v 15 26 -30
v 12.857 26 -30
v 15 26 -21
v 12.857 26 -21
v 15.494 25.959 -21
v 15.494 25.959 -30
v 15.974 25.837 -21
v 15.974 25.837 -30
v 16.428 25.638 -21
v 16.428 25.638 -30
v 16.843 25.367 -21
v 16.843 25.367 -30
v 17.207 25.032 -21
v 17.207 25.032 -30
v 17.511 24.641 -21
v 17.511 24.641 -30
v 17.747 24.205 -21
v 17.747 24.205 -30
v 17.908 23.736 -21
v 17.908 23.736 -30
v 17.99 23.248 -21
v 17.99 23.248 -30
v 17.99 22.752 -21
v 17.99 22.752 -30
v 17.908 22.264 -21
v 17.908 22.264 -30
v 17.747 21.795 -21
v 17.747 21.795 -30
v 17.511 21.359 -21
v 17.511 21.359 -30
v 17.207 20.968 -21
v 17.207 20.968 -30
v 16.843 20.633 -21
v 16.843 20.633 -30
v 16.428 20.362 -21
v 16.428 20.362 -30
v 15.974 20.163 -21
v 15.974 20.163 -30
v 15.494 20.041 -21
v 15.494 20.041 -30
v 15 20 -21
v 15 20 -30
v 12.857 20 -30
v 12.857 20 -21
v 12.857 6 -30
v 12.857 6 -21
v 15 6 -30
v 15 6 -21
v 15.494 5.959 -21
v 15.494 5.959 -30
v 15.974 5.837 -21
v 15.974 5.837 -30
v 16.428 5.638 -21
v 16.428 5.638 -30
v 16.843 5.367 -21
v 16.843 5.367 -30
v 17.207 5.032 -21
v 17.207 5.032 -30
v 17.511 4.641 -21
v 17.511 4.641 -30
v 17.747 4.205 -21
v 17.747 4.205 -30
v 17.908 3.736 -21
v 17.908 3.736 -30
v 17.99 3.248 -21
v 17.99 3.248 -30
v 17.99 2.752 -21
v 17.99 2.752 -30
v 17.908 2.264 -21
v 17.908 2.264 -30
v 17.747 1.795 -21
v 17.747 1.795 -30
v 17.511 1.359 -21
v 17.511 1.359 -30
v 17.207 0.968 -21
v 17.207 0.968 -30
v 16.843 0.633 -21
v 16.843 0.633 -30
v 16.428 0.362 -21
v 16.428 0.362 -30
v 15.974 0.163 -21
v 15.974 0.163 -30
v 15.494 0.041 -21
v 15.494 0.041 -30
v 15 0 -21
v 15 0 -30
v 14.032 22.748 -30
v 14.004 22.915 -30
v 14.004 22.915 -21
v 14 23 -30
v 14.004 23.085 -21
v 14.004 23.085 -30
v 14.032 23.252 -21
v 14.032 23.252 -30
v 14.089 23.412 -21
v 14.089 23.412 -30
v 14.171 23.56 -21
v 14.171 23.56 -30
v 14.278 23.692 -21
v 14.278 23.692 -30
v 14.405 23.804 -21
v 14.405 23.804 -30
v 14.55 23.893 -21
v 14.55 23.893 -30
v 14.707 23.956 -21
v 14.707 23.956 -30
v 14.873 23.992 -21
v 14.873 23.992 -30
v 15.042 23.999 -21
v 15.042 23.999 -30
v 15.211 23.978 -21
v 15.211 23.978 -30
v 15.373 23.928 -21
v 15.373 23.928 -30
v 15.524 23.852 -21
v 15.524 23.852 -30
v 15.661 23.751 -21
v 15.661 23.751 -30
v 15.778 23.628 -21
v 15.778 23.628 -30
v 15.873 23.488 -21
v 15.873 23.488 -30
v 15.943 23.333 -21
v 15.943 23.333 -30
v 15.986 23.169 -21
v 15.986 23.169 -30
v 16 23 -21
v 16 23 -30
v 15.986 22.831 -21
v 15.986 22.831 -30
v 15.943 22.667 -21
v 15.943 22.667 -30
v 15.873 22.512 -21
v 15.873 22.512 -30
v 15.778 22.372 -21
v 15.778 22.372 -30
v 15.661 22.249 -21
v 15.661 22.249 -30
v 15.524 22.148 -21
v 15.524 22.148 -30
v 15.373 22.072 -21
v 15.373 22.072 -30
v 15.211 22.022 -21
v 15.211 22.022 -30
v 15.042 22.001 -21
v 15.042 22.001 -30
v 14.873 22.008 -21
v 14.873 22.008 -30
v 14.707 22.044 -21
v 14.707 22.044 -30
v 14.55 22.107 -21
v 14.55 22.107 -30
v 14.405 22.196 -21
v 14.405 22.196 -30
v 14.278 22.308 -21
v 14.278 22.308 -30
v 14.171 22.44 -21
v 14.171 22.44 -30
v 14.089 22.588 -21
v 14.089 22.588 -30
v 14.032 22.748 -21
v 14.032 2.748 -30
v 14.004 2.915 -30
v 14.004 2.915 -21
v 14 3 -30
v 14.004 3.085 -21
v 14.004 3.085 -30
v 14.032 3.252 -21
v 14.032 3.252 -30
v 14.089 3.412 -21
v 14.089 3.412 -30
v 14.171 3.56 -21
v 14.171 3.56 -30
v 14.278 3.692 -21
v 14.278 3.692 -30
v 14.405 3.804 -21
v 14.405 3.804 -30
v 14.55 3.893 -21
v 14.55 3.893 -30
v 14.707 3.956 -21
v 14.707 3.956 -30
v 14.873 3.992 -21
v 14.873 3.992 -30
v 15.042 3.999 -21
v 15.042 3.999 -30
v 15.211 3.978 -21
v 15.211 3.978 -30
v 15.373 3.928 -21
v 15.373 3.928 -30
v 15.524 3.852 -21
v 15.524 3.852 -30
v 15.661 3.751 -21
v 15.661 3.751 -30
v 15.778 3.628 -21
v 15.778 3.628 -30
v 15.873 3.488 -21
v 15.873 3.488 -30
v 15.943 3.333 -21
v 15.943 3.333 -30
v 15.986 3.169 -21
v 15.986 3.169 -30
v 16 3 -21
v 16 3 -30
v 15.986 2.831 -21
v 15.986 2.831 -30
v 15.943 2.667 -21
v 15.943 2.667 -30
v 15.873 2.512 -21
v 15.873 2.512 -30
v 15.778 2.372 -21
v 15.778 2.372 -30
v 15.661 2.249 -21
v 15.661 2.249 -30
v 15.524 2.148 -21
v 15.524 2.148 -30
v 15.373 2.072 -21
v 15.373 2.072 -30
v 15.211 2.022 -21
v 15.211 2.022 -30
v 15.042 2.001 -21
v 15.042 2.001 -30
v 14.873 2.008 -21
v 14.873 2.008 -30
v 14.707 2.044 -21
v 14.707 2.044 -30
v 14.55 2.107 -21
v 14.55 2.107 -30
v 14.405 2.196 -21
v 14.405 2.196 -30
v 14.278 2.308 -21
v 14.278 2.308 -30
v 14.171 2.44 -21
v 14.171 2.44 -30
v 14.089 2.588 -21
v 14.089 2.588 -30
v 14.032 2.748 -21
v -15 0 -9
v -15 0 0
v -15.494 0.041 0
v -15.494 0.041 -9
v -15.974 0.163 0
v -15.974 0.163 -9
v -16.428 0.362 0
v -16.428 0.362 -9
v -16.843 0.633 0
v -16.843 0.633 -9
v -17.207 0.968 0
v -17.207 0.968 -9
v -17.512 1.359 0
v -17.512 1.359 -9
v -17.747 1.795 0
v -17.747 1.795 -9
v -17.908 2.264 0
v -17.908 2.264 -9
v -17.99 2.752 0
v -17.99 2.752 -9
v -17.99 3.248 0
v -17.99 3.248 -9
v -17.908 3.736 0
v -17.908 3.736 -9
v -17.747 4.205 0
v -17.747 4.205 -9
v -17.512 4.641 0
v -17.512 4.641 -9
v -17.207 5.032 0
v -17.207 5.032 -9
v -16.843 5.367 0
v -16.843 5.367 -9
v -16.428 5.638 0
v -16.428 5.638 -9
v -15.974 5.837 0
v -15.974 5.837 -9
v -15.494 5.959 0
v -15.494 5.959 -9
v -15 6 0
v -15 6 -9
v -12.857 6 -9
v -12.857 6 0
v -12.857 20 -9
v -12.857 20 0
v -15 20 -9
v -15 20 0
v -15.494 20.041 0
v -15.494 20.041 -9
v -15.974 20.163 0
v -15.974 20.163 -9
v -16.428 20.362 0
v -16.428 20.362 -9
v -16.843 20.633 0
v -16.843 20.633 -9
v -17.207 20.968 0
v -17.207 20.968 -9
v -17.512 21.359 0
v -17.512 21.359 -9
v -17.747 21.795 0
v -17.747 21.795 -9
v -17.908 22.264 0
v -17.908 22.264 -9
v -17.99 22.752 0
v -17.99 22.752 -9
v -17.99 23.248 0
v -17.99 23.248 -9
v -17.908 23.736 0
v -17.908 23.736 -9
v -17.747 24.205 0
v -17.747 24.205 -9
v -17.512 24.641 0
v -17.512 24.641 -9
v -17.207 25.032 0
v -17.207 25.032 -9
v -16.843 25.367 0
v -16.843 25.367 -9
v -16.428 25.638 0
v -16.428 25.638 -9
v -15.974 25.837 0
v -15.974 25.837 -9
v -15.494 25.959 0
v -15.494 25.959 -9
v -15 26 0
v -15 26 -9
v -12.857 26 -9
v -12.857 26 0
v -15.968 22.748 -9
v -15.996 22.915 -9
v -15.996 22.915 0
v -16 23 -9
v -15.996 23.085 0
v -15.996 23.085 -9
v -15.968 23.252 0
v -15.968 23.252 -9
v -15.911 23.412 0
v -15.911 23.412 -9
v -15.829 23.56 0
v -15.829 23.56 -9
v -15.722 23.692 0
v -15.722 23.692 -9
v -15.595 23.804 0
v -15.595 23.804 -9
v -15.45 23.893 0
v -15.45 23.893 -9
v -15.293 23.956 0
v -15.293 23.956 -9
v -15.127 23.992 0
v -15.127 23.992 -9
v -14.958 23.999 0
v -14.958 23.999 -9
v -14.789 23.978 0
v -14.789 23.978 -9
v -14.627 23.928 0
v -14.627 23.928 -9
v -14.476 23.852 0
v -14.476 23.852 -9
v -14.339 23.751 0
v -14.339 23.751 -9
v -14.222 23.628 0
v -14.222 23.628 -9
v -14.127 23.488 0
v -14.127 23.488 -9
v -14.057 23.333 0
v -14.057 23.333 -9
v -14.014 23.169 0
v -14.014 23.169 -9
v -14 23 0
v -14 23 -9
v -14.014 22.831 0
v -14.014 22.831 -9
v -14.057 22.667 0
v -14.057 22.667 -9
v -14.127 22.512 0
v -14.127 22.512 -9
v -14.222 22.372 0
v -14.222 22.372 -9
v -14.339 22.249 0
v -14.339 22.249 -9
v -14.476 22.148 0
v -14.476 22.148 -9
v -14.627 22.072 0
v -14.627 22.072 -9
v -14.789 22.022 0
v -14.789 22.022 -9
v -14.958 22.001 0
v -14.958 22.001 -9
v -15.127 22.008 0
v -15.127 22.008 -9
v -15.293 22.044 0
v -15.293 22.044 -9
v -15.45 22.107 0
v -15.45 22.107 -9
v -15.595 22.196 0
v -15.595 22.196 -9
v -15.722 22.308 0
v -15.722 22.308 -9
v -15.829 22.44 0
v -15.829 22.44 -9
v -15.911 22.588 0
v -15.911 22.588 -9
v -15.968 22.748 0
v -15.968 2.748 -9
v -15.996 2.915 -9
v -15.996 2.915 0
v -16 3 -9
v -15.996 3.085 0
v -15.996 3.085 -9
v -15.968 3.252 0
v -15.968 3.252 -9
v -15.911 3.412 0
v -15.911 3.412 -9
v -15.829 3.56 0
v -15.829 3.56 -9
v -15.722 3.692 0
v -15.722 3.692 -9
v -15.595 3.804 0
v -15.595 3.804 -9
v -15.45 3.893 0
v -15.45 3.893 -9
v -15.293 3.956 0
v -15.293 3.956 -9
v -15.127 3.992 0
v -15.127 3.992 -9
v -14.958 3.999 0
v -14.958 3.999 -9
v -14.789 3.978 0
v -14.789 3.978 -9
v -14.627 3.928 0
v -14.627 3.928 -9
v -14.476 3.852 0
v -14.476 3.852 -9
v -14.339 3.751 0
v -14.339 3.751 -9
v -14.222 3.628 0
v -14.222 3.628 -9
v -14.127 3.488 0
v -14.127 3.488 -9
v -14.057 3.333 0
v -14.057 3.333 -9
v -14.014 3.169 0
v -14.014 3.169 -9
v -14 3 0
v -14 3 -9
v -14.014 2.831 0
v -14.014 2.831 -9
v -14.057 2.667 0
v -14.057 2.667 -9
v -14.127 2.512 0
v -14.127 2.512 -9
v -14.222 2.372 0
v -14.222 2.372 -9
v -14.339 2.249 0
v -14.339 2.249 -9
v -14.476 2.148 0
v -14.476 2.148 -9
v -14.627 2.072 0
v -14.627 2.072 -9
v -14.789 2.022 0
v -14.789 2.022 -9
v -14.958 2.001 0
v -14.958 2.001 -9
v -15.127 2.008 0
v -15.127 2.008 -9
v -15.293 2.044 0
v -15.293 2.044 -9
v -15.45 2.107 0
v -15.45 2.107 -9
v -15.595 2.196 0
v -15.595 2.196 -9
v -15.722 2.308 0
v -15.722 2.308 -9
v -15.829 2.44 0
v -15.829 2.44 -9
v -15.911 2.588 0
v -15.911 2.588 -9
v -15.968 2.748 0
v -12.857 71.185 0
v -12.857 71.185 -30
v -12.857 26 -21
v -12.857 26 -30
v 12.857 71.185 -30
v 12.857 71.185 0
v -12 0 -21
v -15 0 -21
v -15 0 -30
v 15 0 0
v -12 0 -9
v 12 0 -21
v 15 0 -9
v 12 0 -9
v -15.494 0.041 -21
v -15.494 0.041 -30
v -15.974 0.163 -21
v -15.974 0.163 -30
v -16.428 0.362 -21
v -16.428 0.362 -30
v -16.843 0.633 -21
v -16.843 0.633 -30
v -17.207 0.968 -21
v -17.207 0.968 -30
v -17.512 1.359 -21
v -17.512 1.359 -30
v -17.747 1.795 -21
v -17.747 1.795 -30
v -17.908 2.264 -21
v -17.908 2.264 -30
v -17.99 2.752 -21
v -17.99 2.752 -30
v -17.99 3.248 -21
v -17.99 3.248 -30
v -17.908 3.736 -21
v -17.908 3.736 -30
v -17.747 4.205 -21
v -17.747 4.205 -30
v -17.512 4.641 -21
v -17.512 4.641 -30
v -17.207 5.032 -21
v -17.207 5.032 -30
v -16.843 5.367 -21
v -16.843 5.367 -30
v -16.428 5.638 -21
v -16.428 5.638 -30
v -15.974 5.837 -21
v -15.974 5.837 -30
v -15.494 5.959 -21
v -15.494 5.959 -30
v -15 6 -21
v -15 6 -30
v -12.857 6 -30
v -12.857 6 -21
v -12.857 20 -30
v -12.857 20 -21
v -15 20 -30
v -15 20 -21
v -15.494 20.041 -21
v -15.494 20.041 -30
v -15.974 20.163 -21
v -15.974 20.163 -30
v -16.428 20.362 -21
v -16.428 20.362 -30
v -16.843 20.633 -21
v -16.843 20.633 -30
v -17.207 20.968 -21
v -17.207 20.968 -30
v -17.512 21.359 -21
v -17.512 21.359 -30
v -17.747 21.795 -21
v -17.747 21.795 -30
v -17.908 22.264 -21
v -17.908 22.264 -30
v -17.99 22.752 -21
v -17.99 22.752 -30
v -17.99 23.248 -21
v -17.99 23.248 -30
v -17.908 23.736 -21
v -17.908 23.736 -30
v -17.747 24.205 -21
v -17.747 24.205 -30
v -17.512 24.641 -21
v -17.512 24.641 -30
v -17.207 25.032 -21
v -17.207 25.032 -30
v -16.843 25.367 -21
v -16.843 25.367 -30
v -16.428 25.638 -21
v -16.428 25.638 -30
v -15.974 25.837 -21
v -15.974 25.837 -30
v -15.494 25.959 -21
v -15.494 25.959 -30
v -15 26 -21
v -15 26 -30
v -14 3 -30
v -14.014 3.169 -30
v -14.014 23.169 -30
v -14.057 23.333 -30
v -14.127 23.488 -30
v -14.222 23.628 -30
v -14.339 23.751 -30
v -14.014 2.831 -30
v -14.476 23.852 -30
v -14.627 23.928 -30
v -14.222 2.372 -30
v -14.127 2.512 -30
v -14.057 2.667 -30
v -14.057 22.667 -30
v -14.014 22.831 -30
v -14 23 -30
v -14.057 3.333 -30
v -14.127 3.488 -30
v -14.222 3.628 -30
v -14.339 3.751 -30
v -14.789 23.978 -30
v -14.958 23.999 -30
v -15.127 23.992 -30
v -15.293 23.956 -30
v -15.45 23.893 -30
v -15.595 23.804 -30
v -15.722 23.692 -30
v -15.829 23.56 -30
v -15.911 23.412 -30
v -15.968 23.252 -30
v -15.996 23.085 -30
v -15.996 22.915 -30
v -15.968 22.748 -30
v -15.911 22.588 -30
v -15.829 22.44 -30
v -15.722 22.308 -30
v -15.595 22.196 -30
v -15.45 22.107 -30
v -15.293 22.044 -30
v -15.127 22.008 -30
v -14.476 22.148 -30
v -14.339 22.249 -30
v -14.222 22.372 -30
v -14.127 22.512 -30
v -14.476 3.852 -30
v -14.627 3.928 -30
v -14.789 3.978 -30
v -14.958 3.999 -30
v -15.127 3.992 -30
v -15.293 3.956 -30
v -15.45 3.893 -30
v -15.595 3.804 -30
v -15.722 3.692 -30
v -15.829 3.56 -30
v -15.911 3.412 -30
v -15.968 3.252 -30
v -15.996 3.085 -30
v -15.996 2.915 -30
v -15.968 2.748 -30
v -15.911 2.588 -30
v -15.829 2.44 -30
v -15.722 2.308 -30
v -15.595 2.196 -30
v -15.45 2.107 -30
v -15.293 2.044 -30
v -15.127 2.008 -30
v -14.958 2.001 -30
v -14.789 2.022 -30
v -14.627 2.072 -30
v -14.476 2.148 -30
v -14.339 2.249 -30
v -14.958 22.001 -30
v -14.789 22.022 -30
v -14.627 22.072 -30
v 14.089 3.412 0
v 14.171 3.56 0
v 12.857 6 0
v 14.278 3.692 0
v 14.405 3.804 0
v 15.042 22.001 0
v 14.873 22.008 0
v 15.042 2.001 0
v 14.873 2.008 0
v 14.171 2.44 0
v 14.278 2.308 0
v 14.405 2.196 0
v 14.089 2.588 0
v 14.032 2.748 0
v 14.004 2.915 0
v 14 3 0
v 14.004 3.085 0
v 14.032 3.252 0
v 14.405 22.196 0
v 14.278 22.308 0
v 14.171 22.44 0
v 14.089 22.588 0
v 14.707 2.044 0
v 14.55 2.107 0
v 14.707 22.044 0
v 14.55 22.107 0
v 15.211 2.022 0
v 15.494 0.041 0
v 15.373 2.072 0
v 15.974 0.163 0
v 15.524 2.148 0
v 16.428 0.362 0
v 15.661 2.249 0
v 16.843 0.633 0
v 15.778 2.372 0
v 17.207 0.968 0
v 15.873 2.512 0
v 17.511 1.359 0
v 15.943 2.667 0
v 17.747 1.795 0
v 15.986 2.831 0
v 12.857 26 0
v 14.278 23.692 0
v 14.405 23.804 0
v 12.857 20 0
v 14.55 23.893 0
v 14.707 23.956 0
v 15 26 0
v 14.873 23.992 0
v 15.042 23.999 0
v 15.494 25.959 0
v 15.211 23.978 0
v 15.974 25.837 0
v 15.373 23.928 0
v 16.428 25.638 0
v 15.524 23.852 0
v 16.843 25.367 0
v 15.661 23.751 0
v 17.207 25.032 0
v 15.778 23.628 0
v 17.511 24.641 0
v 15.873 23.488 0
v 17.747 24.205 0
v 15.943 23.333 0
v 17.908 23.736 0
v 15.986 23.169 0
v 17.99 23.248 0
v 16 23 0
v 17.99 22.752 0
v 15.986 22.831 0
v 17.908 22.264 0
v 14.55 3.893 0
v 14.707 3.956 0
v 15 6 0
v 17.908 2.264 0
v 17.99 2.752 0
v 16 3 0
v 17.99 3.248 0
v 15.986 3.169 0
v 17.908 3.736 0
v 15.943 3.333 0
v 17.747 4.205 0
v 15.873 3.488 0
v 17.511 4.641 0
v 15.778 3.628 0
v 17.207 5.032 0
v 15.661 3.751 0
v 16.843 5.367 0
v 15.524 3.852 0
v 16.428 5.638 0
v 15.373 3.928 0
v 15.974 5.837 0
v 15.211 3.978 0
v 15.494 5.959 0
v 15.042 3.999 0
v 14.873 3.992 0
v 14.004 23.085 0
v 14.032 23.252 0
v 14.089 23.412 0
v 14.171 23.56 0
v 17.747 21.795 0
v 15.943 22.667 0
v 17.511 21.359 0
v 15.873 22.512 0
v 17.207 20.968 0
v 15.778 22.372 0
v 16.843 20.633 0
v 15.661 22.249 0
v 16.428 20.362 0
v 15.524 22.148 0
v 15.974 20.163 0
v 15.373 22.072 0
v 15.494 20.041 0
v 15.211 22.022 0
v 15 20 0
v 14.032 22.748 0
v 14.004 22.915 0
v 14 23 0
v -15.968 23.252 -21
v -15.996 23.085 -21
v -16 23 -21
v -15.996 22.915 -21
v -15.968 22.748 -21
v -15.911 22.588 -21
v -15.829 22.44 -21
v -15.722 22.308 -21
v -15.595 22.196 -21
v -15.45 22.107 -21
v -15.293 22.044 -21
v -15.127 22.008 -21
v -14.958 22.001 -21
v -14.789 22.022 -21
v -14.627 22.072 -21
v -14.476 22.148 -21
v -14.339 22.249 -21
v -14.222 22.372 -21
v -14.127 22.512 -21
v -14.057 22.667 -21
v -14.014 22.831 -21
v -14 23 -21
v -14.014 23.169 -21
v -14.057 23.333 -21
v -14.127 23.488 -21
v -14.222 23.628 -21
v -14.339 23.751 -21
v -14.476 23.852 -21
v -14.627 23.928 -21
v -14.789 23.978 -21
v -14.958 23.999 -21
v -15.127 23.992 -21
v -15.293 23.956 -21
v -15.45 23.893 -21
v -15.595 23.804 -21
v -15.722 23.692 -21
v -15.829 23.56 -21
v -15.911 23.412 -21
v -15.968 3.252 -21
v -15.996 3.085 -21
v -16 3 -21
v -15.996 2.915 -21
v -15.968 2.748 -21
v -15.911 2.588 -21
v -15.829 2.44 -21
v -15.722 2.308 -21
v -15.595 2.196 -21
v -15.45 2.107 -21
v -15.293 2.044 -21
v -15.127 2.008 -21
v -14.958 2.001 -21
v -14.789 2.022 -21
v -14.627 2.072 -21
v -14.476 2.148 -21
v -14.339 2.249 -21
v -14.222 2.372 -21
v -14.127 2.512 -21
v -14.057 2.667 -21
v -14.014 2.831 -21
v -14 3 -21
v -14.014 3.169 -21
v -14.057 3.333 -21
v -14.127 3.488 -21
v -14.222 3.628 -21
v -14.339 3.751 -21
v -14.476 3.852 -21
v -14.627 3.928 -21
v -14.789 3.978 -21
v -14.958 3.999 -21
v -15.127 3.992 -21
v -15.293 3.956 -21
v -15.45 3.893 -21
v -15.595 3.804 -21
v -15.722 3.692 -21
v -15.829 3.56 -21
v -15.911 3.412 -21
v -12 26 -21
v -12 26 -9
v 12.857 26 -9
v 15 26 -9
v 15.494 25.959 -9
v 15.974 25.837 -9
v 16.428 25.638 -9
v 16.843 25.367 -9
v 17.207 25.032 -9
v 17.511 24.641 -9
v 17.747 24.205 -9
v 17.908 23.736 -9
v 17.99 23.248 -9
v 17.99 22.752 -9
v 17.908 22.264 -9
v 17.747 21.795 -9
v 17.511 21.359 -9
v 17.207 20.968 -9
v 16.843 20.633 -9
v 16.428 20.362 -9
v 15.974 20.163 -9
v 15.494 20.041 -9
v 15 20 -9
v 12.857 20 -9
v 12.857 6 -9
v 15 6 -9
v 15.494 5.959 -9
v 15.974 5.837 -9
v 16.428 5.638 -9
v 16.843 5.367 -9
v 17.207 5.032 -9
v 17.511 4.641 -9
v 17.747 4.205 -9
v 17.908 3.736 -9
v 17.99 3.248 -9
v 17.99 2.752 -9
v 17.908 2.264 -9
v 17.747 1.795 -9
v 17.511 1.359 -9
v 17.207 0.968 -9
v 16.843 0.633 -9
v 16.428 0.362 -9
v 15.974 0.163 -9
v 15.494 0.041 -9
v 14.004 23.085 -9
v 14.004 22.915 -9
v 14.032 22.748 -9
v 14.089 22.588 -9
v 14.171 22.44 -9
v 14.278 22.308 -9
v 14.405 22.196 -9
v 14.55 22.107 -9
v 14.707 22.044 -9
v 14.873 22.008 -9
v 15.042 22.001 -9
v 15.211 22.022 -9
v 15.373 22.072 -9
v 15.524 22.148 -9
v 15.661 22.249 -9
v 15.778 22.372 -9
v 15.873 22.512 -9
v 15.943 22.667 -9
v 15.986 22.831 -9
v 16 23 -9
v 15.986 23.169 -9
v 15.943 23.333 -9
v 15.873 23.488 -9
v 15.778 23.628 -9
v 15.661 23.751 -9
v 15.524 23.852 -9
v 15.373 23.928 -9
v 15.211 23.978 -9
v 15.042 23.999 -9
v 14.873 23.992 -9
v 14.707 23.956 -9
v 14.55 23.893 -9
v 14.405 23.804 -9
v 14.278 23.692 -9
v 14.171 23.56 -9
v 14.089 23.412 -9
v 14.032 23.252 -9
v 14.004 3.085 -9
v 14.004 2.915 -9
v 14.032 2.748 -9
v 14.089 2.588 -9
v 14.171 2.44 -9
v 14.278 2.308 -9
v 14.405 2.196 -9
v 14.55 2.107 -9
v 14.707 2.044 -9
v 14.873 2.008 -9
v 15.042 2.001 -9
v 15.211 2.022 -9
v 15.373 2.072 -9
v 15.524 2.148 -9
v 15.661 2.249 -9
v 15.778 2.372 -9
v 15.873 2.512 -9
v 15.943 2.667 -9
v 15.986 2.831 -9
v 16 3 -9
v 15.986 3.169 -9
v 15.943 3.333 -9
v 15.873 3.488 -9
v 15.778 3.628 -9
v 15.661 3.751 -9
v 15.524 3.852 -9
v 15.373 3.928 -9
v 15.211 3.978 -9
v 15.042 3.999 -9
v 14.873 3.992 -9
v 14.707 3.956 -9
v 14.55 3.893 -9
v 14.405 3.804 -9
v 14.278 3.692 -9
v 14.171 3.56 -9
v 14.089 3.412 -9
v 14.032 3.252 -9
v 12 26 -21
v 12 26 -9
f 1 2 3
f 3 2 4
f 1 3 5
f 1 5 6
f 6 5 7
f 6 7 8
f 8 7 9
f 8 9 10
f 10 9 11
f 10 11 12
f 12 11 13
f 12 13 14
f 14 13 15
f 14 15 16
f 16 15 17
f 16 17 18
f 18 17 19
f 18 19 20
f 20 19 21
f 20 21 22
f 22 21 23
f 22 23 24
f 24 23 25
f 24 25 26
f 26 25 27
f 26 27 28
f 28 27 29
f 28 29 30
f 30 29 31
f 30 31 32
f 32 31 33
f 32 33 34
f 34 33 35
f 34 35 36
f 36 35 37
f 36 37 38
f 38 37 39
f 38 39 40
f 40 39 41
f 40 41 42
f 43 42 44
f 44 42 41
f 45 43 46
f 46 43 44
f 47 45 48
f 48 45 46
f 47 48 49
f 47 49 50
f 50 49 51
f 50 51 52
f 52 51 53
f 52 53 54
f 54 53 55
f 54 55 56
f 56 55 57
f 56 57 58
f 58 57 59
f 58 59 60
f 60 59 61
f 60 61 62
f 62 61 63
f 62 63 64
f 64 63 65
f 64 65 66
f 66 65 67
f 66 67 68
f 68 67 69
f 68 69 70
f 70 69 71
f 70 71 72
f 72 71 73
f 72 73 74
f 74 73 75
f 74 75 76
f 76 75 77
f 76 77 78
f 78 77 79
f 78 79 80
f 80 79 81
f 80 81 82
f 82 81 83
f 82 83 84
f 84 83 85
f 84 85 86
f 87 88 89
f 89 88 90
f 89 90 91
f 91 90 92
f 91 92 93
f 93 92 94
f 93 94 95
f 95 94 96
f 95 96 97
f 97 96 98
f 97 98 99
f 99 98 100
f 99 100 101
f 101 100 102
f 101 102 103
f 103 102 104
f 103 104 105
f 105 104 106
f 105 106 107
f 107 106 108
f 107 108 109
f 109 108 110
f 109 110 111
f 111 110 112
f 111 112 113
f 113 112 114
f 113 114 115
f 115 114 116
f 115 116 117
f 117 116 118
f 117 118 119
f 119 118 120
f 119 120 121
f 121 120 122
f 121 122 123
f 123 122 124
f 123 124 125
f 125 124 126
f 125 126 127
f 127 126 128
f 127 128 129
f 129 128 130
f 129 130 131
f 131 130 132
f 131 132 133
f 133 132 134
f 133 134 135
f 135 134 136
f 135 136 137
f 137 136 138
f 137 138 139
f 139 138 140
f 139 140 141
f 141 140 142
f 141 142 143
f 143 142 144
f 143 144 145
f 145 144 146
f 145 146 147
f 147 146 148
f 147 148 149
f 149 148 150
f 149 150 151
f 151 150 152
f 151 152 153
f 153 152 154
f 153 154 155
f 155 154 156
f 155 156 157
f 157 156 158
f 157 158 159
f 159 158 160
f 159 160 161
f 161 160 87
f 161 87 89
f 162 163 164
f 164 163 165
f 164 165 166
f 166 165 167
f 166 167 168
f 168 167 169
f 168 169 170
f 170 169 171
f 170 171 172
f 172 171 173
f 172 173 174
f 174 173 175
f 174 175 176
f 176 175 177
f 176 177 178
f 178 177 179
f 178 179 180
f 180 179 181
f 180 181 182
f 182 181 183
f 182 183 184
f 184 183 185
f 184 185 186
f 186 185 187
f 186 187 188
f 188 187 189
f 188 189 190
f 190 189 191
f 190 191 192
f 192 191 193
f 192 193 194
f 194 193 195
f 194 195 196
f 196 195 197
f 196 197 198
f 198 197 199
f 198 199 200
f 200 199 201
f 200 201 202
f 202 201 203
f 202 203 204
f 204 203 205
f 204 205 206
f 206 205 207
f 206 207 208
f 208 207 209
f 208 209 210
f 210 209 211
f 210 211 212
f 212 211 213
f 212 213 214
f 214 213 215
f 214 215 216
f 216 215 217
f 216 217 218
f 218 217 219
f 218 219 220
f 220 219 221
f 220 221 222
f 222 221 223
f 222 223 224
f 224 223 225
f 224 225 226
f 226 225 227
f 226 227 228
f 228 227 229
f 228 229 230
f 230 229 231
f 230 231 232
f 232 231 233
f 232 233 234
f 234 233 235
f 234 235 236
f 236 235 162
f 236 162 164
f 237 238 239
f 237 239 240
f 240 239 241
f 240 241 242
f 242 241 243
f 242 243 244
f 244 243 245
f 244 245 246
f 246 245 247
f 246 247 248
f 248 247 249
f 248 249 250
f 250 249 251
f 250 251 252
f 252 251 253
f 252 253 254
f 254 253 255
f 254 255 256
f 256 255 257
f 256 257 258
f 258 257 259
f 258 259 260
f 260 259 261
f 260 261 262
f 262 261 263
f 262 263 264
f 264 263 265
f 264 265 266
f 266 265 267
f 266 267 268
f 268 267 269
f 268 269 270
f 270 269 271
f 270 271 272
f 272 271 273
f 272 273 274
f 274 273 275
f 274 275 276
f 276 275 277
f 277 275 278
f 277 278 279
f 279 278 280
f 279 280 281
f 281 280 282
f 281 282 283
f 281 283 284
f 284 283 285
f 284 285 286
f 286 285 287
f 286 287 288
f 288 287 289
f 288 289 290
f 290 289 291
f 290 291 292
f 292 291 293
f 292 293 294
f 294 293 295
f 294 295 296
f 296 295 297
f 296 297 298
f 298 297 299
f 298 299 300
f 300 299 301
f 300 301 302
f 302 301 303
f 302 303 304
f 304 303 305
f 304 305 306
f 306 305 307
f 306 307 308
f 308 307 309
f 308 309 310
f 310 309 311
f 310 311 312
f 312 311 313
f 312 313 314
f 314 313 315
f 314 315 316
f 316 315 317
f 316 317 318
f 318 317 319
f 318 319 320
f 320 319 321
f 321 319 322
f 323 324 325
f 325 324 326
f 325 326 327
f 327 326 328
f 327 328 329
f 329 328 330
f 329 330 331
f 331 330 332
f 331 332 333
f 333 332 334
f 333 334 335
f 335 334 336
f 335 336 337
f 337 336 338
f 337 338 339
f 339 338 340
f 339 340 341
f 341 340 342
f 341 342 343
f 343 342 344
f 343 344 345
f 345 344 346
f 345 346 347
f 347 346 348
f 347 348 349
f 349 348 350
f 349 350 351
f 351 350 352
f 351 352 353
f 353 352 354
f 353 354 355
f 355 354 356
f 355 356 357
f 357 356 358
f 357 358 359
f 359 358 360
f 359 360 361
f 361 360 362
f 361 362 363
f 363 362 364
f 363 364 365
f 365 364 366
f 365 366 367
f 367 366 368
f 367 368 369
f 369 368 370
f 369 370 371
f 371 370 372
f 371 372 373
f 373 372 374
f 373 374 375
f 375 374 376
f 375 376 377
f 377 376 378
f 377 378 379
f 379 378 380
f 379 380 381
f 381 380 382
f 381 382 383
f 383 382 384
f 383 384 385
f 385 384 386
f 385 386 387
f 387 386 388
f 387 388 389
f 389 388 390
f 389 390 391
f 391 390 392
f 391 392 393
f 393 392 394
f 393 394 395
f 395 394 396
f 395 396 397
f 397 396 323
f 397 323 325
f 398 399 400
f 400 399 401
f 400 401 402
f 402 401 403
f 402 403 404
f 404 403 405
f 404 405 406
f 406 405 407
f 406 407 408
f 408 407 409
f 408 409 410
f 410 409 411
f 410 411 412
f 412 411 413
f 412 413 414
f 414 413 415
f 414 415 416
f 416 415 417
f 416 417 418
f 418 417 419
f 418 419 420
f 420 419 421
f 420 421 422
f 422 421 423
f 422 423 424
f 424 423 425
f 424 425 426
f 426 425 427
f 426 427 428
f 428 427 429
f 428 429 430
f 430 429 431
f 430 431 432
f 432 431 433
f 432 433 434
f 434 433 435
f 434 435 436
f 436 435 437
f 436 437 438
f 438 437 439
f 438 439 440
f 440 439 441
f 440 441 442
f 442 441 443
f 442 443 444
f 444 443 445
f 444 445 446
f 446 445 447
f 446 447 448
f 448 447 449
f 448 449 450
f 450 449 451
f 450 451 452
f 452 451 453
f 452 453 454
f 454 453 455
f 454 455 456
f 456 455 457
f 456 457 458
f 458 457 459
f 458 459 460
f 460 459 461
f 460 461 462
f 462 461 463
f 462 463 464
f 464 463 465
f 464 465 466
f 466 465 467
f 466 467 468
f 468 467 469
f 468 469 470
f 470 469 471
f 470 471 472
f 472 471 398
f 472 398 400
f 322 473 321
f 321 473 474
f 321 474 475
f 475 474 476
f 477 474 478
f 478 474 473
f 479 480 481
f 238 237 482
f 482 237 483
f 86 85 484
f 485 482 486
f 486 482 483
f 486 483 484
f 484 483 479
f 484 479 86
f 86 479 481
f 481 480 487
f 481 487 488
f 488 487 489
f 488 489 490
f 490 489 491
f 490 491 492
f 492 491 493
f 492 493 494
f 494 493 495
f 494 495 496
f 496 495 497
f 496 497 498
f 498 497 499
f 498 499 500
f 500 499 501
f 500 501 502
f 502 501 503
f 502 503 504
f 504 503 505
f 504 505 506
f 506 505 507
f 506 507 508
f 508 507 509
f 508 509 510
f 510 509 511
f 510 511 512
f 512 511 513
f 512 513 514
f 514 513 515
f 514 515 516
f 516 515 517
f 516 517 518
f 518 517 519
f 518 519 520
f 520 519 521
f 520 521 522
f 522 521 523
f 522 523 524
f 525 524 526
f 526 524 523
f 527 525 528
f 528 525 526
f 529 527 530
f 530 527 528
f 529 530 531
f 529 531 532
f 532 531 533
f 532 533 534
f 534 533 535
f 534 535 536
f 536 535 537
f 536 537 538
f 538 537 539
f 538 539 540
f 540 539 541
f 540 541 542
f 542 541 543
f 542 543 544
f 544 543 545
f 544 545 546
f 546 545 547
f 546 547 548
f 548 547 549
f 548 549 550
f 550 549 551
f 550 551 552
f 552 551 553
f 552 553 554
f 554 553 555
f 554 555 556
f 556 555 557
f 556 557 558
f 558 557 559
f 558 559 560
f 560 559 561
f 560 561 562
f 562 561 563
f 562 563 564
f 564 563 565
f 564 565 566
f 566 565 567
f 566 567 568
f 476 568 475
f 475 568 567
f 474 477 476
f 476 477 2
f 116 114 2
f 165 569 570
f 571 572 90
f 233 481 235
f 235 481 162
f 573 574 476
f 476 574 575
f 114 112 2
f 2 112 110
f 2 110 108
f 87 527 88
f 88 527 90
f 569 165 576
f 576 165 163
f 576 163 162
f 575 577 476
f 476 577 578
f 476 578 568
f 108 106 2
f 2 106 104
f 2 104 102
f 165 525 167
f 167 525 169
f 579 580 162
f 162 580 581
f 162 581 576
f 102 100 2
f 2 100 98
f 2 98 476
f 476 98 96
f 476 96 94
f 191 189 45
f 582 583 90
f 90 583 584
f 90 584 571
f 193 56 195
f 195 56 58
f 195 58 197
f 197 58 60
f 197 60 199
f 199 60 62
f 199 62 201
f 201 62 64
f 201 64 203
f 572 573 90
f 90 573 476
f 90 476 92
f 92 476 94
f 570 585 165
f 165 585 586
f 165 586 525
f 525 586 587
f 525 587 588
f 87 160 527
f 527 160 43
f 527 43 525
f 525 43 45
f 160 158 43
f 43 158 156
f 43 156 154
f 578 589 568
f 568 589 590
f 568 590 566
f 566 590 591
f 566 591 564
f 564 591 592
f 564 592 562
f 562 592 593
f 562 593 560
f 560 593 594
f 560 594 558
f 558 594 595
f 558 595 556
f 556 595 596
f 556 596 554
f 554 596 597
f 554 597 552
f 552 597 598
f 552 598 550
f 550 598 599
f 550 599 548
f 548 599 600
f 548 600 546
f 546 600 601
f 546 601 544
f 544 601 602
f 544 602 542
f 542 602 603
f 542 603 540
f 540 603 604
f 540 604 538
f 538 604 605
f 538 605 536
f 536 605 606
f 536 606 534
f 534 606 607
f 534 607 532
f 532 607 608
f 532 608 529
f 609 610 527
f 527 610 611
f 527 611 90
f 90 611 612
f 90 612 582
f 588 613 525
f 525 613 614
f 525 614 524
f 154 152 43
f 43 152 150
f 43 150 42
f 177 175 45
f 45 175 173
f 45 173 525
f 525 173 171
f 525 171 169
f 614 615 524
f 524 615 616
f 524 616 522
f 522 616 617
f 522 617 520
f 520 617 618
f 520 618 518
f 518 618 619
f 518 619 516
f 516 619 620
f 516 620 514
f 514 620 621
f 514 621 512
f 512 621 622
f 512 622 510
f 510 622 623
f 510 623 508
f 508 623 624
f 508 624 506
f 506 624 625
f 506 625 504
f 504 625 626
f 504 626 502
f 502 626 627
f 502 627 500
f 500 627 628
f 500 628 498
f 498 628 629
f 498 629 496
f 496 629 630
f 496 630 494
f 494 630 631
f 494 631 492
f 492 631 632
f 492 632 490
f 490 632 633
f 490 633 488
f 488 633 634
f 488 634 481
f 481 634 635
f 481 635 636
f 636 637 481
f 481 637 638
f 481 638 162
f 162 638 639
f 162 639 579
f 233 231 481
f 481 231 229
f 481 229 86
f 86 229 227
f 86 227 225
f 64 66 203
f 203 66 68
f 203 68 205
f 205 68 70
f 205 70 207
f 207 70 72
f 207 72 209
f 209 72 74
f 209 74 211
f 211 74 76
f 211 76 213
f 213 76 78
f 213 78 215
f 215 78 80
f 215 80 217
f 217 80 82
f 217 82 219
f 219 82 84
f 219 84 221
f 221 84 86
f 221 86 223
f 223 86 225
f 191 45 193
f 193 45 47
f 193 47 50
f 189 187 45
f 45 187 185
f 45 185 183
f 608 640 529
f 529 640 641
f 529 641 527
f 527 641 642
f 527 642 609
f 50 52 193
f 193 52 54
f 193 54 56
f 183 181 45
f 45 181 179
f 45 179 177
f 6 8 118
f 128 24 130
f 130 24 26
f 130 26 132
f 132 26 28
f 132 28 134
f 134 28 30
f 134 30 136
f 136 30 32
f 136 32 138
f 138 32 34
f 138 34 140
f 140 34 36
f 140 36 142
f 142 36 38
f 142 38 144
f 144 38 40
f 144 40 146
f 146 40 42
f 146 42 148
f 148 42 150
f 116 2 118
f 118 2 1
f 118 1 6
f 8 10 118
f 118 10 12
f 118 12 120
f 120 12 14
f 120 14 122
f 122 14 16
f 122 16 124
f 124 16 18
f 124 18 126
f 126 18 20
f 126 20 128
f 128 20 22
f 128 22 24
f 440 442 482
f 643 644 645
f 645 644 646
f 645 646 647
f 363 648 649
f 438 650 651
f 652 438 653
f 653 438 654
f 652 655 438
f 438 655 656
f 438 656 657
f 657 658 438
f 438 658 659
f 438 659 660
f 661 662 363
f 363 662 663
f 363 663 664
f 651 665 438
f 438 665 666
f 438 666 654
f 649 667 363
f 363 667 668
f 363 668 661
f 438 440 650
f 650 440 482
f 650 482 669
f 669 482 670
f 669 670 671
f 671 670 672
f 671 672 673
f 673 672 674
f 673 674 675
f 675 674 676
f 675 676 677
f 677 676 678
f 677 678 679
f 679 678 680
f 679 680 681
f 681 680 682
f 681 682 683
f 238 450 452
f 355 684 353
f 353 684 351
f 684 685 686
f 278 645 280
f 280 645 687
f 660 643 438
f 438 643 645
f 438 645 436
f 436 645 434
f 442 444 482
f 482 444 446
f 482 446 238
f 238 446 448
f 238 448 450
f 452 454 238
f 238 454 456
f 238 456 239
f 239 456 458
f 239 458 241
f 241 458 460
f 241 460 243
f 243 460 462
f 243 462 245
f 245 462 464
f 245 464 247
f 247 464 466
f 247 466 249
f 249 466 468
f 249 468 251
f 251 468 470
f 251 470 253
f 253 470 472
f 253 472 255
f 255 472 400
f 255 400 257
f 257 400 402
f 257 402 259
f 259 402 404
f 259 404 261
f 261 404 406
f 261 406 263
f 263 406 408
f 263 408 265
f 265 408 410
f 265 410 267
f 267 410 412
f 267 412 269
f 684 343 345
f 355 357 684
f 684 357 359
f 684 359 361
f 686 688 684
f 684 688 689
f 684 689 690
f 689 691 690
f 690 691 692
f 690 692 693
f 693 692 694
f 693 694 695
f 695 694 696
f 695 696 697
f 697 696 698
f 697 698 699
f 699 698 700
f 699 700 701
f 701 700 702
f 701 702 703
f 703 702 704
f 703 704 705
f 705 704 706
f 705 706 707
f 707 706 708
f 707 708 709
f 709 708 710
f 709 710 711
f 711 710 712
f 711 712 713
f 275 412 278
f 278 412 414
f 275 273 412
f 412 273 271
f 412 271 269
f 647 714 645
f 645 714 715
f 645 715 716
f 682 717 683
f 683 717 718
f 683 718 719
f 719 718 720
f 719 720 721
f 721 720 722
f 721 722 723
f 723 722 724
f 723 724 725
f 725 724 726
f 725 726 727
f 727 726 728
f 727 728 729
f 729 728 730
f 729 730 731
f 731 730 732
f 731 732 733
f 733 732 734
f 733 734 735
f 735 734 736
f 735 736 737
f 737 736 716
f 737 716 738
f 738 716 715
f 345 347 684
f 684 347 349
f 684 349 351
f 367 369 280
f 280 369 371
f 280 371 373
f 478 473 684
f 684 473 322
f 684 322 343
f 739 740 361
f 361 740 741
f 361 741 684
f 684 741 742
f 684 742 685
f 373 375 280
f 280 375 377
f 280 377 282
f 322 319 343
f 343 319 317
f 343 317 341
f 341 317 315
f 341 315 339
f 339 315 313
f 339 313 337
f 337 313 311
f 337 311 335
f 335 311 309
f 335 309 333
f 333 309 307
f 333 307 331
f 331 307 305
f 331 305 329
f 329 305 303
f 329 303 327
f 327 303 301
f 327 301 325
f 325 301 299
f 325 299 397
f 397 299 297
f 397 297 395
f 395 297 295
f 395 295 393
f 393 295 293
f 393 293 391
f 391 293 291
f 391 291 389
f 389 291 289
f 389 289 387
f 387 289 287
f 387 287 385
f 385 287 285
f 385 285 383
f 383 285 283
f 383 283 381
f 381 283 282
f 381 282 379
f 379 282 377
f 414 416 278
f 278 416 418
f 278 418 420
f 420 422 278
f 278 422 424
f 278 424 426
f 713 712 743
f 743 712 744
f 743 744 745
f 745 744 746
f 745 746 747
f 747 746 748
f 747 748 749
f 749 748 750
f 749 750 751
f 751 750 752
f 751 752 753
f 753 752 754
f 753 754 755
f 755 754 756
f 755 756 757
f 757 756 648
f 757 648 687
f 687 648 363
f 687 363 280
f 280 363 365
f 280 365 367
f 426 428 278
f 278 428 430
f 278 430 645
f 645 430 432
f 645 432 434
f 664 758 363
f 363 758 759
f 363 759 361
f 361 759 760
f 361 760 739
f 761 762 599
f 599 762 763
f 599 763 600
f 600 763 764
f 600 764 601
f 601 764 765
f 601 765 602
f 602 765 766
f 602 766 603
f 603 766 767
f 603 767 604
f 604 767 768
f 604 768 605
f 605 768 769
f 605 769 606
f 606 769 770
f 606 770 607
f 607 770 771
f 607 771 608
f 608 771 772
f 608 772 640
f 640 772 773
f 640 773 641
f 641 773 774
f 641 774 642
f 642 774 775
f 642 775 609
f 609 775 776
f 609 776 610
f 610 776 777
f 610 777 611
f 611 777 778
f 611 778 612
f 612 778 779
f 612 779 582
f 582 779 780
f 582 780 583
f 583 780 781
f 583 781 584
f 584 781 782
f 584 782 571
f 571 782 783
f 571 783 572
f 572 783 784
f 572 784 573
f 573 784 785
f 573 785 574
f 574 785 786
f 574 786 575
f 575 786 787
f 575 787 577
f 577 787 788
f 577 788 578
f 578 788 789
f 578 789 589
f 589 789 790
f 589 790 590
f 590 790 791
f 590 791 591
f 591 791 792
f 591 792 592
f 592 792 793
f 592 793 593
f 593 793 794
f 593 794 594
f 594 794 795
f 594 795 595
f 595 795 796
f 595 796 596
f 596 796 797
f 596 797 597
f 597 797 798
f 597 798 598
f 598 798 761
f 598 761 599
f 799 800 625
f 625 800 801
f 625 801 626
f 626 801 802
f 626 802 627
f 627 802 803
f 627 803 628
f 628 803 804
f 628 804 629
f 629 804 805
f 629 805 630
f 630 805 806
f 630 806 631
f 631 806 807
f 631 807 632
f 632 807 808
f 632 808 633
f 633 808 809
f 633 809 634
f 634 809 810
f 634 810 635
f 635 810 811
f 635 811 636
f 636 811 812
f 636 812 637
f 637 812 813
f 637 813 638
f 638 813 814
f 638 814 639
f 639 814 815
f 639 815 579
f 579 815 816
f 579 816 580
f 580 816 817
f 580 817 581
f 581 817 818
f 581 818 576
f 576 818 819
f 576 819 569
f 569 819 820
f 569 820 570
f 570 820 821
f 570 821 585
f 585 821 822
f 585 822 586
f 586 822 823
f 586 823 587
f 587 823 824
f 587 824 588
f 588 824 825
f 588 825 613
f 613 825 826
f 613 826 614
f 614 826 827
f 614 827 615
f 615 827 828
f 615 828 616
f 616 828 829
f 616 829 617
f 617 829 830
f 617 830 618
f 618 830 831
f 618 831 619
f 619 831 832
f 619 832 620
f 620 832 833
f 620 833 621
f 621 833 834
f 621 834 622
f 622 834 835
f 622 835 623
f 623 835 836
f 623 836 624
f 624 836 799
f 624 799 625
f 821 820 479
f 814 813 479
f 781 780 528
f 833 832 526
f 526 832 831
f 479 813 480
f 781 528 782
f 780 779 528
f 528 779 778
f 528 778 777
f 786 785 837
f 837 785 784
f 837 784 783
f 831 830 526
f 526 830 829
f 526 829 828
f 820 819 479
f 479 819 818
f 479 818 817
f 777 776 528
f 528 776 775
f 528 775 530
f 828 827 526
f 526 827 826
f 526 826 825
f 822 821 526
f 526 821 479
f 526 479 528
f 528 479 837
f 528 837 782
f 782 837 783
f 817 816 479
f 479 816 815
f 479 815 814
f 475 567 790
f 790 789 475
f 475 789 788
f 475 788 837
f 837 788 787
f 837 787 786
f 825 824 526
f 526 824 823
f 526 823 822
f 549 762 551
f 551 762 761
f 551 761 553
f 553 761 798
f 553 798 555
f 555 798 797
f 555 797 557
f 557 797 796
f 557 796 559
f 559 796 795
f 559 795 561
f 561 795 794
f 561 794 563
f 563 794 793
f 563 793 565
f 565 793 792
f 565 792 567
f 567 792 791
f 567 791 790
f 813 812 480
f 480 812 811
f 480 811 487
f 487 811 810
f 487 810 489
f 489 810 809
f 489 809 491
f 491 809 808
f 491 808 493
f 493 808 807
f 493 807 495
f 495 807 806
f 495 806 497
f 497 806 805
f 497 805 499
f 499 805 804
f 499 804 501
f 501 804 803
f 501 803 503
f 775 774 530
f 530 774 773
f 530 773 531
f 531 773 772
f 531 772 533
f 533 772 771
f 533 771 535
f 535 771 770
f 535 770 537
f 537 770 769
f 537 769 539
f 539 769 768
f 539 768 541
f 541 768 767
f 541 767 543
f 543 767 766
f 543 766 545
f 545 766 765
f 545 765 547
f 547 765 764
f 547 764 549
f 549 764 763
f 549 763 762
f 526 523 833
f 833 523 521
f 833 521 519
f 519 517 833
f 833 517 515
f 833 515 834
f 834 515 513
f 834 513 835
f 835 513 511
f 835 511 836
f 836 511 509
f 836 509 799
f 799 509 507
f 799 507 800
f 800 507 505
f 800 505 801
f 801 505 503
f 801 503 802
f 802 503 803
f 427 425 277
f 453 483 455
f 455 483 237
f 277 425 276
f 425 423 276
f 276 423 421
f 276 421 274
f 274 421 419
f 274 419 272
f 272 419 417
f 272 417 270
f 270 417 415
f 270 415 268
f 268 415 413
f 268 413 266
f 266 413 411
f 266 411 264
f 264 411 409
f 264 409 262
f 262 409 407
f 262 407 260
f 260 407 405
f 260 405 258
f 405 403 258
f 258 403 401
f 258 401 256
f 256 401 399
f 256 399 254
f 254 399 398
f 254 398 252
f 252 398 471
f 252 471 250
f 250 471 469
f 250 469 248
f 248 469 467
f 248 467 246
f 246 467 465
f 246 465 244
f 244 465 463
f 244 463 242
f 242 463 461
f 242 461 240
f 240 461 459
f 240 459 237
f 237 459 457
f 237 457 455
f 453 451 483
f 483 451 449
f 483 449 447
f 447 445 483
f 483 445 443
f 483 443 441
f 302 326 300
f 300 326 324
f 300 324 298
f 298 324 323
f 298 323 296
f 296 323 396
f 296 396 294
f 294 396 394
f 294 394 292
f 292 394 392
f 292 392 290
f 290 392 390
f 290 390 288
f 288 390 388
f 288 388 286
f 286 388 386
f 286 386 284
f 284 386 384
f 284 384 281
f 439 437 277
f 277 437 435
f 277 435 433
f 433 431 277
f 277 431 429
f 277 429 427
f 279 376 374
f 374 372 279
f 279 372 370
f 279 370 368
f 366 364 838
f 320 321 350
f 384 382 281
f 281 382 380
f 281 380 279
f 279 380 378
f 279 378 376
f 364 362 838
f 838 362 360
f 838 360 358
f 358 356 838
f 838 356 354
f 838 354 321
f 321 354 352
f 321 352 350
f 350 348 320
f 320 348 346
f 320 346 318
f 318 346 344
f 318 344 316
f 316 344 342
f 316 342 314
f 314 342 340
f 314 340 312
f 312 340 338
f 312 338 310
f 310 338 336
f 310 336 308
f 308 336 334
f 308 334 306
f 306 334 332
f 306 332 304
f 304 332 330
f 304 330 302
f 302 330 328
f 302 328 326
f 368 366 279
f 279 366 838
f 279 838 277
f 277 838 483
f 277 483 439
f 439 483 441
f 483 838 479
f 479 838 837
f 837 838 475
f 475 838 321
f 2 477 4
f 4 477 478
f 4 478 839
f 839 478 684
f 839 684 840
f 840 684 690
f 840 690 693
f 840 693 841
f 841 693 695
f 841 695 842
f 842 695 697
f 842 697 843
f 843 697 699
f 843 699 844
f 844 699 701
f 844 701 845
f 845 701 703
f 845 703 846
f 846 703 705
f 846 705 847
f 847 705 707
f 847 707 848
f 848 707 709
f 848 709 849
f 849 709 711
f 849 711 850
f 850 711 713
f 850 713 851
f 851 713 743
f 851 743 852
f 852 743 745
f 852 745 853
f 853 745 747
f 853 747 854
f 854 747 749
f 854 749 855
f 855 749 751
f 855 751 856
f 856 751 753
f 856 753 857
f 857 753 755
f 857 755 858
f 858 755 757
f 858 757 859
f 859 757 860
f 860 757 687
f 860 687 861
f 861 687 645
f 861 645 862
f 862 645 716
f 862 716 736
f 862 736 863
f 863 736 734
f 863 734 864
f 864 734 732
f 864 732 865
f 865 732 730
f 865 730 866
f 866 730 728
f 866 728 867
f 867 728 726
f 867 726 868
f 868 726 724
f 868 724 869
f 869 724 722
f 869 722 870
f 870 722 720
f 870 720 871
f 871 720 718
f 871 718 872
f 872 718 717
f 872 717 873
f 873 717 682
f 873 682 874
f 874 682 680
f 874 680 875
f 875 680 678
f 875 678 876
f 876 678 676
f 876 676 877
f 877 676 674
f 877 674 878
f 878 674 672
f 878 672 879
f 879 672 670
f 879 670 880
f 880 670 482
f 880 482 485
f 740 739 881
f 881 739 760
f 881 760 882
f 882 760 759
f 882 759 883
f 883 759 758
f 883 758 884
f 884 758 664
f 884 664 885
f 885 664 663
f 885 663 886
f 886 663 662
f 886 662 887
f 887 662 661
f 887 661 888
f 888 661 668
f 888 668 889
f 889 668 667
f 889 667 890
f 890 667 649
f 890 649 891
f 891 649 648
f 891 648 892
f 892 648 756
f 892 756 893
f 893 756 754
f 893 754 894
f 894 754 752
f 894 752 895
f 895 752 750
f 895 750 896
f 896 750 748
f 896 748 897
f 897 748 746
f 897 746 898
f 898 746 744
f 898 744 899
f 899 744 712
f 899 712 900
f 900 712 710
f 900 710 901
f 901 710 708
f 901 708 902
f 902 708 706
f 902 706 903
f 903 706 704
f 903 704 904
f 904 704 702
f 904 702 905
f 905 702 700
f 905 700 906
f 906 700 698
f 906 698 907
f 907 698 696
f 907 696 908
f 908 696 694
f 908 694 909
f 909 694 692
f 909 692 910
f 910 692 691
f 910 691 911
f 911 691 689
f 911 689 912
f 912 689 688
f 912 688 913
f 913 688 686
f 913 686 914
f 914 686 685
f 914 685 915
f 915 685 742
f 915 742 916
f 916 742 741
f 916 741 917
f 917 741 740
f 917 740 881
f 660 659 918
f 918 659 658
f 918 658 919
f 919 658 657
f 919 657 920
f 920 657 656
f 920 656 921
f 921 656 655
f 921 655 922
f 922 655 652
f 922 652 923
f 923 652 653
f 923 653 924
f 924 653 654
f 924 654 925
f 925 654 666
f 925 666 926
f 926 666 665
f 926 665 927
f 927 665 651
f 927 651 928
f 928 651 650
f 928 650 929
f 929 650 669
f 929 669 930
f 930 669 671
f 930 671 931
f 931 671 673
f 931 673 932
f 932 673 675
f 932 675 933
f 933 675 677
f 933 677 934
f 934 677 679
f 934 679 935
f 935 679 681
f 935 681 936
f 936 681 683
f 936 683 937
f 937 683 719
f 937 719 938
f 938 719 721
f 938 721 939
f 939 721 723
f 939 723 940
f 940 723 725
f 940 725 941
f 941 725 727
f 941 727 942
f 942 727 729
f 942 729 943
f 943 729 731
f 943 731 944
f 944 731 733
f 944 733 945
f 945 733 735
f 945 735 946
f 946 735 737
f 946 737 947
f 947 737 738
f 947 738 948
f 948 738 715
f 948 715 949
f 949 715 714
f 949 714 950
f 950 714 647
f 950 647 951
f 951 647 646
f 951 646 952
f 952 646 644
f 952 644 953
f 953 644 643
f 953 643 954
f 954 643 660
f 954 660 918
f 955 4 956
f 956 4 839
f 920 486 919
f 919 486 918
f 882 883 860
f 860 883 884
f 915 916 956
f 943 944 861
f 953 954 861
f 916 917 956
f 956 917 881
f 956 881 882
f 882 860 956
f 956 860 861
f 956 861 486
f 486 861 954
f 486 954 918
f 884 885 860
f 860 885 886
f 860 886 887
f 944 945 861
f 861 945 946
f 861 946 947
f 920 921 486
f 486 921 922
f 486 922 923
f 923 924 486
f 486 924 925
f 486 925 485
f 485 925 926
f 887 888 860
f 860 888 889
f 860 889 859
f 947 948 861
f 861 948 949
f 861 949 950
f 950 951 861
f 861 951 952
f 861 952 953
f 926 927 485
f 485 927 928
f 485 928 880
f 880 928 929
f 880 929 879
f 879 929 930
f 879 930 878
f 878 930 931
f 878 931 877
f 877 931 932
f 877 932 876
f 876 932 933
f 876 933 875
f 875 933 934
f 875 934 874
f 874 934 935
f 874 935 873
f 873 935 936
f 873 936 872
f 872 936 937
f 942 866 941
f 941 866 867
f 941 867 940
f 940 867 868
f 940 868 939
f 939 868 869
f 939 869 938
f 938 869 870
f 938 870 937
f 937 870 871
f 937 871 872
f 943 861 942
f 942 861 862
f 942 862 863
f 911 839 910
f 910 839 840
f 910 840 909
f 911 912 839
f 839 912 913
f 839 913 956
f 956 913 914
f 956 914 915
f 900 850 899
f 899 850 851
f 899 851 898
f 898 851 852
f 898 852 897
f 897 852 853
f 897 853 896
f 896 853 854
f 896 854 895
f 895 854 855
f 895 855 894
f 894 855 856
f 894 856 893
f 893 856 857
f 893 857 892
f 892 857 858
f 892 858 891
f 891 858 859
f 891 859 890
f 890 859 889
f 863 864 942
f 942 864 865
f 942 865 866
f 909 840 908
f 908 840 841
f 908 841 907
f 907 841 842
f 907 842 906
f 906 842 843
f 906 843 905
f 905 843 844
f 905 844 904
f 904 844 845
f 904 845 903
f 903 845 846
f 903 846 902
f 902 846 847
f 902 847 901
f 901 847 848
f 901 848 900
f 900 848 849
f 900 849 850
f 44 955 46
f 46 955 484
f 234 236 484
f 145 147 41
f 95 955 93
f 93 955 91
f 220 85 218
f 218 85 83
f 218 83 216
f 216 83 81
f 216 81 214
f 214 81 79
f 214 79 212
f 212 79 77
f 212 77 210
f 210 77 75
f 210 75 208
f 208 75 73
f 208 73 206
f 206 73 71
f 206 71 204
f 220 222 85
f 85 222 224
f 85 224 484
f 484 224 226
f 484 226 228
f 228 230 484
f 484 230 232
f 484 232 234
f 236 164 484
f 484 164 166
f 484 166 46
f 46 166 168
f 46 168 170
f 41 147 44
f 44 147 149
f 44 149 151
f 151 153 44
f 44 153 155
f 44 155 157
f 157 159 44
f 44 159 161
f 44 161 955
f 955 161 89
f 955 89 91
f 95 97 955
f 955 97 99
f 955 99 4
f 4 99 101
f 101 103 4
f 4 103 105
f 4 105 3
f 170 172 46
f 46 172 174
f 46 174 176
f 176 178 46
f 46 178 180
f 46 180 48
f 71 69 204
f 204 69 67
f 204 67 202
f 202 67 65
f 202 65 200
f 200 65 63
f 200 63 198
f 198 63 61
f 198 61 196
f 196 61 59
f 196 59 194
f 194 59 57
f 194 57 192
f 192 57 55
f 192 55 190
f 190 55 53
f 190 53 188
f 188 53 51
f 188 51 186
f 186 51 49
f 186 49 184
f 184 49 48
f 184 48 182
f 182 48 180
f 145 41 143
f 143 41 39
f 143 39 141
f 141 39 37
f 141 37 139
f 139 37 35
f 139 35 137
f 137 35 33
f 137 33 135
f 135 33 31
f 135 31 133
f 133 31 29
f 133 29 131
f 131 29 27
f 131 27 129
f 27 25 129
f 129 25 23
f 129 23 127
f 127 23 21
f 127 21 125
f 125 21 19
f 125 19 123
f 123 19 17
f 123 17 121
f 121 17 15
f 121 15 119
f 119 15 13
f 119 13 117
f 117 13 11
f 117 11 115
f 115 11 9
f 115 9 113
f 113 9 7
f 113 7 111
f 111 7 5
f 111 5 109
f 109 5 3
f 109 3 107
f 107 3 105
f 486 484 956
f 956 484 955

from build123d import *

# Parameters (mm, degrees)
SKETCH_1_R          = 1
EXTRUDE_1_DEPTH     = 30
CUT_EXTRUDE_1_REACH = 81.318
SKETCH_2_W          = 6
SKETCH_2_H          = 12


with BuildPart() as part:
    # Эскиз1 → Бобышка-Вытянуть1 (new body)
    with BuildSketch(Plane.XY):
        with BuildLine():
            Line((-15, 20), (-12.857189373, 20))
            Line((-12.857189373, 20), (-12.857189373, 6))
            Line((-12.857189373, 6), (-15, 6))
            ThreePointArc((-15, 6), (-18, 3), (-15, 0))
            Line((-15, 0), (0, 0))
            Line((0, 0), (0, 55.160876672))
            Line((0, 55.160876672), (0, 71.184974766))
            Line((0, 71.184974766), (-12.857189373, 71.184974766))
            Line((-12.857189373, 71.184974766), (-12.857189373, 26))
            Line((-12.857189373, 26), (-15, 26))
            ThreePointArc((-15, 26), (-18, 23), (-15, 20))
        make_face()
        with Locations((-15, 23)):
            Circle(SKETCH_1_R, mode=Mode.SUBTRACT)
        with Locations((-15, 3)):
            Circle(SKETCH_1_R, mode=Mode.SUBTRACT)
    extrude_1 = extrude(amount=-EXTRUDE_1_DEPTH)

    # Вырез-Вытянуть1: up to this face of the body (flat: up to its plane)
    cut_extrude_1_end = Plane(part.part.faces().sort_by_distance((-13.928594687, 26, -15))[0])
    # Эскиз2 → Вырез-Вытянуть1 (cut, up to the picked face)
    with BuildSketch(Plane(origin=(0, 0, 0), x_dir=(1, 0, 0), z_dir=(0, 1, 0)), mode=Mode.PRIVATE) as cut_extrude_1_sk1:
        with Locations((-15, 15)):
            Rectangle(SKETCH_2_W, SKETCH_2_H)
    cut_extrude_1_tool1 = split(extrude(cut_extrude_1_sk1.sketch, amount=CUT_EXTRUDE_1_REACH, mode=Mode.PRIVATE), bisect_by=cut_extrude_1_end, keep=Keep.BOTH, mode=Mode.PRIVATE)
    cut_extrude_1 = cut_extrude_1_tool1.solids().sort_by(Axis((-15, 0, -15), (0, 1, 0)))[0]
    add(cut_extrude_1, mode=Mode.SUBTRACT)

    # Зеркальное отражение1: Бобышка-Вытянуть1, Вырез-Вытянуть1 across plane
    add(extrude_1.mirror(Plane(origin=(0, 71.184974766, -30), x_dir=(0, 0, 1), z_dir=(1, 0, 0))))
    add(cut_extrude_1.mirror(Plane(origin=(0, 71.184974766, -30), x_dir=(0, 0, 1), z_dir=(1, 0, 0))), mode=Mode.SUBTRACT)


solid = part.part
